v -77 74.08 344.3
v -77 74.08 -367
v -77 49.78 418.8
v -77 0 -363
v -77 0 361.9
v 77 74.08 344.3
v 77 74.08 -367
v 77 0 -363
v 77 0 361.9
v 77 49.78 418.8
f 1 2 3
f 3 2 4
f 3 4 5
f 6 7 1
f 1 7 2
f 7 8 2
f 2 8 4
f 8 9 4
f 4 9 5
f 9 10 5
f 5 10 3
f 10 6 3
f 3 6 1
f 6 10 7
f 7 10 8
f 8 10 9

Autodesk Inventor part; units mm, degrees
ref_plane "YZ Plane" through (0, 0, 0) normal (1, 0, 0) x (0, 1, 0)
ref_plane "XZ Plane" through (0, 0, 0) normal (0, 1, 0) x (-1, 0, 0)
sketch "Sketch2" plane through (0, 0, 0) normal (1, 0, 0) x (0, 1, 0)
  line L0 (0, -524.16) -> (0, 575.96) projected
  line L1 (0, 361.9) -> (49.78, 418.8)
  line L2 (49.78, 418.8) -> (74.08, 344.3)
  line L3 (74.08, 344.3) -> (74.08, -367)
  line L4 (74.08, -367) -> (0, -363)
  line L5 (0, -363) -> (0, 0)
  line L6 (0, 361.9) -> (0, 0)
  dimension "d0" = 361.9
  dimension "d1" = 56.9
  dimension "d2" = 49.78
  dimension "d3" = 24.3
  dimension "d4" = 74.5
  dimension "d5" = 363
  dimension "d6" = 4
  dimension "d7" = 74.08
extrude "Extrusion1" add sketch "Sketch2" along normal mid plane 154
properties part number "Enemy_hull_collision"
